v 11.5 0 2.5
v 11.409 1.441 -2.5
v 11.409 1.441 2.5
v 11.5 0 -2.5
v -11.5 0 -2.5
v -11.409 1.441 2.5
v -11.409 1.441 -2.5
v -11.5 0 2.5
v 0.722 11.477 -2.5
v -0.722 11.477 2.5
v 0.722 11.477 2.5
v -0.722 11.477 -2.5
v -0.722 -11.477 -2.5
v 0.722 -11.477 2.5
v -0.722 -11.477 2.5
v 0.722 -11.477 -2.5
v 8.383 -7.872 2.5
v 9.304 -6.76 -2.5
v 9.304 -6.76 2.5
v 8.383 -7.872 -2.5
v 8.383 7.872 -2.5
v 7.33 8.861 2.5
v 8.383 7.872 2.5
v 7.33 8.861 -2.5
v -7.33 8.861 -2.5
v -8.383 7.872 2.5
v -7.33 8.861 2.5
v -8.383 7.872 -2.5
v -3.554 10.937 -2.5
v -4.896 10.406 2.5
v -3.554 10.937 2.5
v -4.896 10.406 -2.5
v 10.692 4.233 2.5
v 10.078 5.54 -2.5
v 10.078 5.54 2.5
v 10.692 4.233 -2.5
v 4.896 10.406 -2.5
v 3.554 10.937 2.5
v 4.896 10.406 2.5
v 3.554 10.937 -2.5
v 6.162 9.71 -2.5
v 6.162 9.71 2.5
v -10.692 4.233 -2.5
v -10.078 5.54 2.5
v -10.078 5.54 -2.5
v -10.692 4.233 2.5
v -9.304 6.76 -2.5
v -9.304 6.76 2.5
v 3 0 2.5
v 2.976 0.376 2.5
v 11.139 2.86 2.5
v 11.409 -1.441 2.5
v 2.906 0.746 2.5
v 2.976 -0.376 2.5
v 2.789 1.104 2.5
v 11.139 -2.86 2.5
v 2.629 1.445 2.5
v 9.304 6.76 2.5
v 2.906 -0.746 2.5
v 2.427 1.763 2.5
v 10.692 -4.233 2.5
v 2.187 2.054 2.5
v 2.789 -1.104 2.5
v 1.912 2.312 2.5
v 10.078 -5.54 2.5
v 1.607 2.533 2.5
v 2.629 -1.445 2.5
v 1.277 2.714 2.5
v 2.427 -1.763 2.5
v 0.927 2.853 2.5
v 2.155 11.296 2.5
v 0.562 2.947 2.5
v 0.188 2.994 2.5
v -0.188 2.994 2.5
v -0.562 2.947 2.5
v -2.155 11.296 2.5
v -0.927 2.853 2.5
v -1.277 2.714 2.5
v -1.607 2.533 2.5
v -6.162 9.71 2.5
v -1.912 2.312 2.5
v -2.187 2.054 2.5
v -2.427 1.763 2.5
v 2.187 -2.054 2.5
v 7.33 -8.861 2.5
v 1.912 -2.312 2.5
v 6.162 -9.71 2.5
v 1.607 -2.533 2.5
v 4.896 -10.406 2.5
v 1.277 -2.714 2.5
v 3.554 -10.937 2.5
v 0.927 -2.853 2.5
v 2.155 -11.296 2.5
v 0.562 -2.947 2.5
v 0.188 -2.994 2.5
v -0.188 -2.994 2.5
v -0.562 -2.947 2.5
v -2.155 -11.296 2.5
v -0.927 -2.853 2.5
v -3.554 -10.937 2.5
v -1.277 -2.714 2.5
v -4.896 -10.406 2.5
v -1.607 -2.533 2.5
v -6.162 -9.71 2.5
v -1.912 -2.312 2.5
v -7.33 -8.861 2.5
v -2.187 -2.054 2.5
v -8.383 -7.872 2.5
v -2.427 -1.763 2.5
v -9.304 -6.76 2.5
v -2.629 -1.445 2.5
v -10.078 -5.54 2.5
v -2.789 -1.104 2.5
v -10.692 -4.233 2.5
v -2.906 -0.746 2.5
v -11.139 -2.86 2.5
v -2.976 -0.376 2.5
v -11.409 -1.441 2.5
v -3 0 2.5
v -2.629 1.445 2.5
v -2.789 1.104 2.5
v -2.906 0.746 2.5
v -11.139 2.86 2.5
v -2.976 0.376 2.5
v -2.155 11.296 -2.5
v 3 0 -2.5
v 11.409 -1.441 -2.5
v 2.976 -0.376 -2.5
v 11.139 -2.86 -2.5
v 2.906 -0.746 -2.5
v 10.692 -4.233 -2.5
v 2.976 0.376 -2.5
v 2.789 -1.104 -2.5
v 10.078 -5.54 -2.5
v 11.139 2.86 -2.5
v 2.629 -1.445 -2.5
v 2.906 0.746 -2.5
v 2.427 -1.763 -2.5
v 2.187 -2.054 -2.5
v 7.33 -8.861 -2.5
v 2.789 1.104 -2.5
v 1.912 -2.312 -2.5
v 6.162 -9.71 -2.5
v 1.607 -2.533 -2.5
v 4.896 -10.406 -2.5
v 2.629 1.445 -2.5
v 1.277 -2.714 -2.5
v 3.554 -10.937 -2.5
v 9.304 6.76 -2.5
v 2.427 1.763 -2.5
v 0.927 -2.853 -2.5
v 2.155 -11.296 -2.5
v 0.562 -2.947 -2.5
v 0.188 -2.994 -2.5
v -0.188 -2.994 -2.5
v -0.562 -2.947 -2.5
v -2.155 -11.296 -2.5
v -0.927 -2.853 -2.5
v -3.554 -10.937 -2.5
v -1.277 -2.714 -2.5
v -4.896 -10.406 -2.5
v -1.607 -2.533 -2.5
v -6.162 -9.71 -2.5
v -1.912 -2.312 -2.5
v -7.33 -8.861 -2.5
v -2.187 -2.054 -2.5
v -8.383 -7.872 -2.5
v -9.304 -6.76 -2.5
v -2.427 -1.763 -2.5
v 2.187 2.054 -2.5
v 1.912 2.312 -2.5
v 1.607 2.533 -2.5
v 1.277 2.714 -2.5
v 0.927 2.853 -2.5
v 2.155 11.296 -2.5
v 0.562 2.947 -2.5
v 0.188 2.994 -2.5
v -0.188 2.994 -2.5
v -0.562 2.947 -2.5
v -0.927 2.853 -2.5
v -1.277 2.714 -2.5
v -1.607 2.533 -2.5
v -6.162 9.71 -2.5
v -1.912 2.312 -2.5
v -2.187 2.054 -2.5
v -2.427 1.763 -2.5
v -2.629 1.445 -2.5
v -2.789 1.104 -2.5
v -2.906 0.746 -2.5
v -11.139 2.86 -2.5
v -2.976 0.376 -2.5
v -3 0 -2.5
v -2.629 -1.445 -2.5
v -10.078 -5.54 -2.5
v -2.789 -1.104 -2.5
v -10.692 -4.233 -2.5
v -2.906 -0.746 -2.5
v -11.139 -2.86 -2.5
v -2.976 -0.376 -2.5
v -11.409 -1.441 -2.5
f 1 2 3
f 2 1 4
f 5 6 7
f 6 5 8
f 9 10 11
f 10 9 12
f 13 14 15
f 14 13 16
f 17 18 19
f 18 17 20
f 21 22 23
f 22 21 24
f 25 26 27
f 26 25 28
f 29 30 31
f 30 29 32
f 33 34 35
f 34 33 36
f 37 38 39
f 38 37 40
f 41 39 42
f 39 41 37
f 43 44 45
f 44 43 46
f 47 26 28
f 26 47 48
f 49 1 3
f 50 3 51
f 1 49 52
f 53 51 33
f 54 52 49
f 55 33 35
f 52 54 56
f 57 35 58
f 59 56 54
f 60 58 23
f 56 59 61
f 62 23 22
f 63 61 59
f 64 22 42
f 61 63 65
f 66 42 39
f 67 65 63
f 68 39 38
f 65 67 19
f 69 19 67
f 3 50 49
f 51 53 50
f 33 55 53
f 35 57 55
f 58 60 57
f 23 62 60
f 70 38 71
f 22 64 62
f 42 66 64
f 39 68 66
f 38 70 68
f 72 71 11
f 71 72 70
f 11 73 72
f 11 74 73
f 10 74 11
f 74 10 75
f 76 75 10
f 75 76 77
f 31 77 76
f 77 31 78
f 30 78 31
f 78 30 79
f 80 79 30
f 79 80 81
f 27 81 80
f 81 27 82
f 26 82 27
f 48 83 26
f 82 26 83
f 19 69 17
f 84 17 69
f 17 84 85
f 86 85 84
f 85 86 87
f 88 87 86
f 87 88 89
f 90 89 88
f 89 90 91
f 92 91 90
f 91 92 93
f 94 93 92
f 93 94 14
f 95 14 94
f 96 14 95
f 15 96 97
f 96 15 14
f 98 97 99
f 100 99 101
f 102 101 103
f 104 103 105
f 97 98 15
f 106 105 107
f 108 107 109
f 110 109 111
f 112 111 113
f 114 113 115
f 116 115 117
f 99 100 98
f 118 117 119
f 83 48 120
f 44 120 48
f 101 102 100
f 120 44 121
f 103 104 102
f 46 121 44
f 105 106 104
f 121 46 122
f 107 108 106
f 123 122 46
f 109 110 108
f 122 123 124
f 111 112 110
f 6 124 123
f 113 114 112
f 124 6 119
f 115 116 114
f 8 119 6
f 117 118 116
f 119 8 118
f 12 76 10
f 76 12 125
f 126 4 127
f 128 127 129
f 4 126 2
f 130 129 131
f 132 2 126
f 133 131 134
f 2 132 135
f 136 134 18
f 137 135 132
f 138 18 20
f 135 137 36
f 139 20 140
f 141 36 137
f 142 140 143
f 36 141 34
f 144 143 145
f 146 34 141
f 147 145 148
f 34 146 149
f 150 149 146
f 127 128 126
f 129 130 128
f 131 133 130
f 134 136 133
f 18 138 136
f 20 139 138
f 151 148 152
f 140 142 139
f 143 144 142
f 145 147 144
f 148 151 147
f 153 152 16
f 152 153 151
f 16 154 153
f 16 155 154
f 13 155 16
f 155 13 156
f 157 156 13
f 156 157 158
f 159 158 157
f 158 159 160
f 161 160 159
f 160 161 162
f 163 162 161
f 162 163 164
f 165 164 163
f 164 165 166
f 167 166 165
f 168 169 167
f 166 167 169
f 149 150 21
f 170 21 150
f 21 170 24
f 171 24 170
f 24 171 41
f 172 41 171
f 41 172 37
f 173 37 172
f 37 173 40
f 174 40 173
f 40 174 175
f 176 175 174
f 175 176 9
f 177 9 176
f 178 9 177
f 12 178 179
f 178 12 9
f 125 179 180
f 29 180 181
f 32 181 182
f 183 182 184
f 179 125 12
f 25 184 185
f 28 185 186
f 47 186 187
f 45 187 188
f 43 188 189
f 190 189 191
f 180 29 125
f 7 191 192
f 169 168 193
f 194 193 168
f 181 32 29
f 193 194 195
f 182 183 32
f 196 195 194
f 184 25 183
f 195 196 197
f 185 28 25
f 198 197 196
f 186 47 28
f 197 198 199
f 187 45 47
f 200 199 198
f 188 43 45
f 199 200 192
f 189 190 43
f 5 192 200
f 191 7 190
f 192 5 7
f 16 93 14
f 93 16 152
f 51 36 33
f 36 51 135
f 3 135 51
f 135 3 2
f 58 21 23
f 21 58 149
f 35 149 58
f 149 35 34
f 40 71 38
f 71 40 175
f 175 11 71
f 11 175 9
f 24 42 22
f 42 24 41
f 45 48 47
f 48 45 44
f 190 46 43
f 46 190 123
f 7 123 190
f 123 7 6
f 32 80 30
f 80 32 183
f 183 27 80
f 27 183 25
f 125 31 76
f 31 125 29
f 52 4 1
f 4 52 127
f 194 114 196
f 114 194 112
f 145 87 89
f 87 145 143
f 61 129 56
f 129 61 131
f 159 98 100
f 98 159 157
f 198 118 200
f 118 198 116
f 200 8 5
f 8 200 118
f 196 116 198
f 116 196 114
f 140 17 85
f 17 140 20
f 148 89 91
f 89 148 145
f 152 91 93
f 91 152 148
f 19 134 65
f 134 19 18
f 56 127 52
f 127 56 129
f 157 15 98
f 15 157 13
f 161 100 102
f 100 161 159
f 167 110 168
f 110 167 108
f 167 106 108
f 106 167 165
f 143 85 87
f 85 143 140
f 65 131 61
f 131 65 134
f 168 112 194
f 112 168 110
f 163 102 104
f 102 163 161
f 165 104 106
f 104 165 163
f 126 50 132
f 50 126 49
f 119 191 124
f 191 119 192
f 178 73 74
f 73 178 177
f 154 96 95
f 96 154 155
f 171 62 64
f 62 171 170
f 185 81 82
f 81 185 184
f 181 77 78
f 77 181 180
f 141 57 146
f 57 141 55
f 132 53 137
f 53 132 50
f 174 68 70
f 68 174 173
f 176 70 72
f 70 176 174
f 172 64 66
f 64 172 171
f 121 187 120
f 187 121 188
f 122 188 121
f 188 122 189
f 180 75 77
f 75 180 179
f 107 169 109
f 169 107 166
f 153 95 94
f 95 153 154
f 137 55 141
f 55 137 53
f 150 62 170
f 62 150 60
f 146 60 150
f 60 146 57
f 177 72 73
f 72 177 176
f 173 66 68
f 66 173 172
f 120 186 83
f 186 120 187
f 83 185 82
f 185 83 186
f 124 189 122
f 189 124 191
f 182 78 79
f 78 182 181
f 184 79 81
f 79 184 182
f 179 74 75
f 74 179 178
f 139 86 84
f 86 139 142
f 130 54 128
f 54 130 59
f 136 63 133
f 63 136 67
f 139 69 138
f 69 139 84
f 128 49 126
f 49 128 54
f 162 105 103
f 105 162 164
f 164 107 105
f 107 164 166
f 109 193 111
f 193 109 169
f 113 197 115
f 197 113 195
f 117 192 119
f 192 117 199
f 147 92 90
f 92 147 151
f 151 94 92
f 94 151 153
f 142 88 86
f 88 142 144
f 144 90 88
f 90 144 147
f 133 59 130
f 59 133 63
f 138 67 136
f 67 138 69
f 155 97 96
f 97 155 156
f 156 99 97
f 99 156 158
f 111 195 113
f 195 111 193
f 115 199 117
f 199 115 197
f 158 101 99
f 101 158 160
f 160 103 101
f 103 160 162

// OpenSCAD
$fn = 50;


difference() {
	union() {
		translate(v = [0, 0, -2.5000000000]) {
			cylinder(h = 5, r = 11.5000000000);
		}
	}
	union() {
		translate(v = [0, 0, -100.0000000000]) {
			cylinder(h = 200, r = 3);
		}
	}
}
